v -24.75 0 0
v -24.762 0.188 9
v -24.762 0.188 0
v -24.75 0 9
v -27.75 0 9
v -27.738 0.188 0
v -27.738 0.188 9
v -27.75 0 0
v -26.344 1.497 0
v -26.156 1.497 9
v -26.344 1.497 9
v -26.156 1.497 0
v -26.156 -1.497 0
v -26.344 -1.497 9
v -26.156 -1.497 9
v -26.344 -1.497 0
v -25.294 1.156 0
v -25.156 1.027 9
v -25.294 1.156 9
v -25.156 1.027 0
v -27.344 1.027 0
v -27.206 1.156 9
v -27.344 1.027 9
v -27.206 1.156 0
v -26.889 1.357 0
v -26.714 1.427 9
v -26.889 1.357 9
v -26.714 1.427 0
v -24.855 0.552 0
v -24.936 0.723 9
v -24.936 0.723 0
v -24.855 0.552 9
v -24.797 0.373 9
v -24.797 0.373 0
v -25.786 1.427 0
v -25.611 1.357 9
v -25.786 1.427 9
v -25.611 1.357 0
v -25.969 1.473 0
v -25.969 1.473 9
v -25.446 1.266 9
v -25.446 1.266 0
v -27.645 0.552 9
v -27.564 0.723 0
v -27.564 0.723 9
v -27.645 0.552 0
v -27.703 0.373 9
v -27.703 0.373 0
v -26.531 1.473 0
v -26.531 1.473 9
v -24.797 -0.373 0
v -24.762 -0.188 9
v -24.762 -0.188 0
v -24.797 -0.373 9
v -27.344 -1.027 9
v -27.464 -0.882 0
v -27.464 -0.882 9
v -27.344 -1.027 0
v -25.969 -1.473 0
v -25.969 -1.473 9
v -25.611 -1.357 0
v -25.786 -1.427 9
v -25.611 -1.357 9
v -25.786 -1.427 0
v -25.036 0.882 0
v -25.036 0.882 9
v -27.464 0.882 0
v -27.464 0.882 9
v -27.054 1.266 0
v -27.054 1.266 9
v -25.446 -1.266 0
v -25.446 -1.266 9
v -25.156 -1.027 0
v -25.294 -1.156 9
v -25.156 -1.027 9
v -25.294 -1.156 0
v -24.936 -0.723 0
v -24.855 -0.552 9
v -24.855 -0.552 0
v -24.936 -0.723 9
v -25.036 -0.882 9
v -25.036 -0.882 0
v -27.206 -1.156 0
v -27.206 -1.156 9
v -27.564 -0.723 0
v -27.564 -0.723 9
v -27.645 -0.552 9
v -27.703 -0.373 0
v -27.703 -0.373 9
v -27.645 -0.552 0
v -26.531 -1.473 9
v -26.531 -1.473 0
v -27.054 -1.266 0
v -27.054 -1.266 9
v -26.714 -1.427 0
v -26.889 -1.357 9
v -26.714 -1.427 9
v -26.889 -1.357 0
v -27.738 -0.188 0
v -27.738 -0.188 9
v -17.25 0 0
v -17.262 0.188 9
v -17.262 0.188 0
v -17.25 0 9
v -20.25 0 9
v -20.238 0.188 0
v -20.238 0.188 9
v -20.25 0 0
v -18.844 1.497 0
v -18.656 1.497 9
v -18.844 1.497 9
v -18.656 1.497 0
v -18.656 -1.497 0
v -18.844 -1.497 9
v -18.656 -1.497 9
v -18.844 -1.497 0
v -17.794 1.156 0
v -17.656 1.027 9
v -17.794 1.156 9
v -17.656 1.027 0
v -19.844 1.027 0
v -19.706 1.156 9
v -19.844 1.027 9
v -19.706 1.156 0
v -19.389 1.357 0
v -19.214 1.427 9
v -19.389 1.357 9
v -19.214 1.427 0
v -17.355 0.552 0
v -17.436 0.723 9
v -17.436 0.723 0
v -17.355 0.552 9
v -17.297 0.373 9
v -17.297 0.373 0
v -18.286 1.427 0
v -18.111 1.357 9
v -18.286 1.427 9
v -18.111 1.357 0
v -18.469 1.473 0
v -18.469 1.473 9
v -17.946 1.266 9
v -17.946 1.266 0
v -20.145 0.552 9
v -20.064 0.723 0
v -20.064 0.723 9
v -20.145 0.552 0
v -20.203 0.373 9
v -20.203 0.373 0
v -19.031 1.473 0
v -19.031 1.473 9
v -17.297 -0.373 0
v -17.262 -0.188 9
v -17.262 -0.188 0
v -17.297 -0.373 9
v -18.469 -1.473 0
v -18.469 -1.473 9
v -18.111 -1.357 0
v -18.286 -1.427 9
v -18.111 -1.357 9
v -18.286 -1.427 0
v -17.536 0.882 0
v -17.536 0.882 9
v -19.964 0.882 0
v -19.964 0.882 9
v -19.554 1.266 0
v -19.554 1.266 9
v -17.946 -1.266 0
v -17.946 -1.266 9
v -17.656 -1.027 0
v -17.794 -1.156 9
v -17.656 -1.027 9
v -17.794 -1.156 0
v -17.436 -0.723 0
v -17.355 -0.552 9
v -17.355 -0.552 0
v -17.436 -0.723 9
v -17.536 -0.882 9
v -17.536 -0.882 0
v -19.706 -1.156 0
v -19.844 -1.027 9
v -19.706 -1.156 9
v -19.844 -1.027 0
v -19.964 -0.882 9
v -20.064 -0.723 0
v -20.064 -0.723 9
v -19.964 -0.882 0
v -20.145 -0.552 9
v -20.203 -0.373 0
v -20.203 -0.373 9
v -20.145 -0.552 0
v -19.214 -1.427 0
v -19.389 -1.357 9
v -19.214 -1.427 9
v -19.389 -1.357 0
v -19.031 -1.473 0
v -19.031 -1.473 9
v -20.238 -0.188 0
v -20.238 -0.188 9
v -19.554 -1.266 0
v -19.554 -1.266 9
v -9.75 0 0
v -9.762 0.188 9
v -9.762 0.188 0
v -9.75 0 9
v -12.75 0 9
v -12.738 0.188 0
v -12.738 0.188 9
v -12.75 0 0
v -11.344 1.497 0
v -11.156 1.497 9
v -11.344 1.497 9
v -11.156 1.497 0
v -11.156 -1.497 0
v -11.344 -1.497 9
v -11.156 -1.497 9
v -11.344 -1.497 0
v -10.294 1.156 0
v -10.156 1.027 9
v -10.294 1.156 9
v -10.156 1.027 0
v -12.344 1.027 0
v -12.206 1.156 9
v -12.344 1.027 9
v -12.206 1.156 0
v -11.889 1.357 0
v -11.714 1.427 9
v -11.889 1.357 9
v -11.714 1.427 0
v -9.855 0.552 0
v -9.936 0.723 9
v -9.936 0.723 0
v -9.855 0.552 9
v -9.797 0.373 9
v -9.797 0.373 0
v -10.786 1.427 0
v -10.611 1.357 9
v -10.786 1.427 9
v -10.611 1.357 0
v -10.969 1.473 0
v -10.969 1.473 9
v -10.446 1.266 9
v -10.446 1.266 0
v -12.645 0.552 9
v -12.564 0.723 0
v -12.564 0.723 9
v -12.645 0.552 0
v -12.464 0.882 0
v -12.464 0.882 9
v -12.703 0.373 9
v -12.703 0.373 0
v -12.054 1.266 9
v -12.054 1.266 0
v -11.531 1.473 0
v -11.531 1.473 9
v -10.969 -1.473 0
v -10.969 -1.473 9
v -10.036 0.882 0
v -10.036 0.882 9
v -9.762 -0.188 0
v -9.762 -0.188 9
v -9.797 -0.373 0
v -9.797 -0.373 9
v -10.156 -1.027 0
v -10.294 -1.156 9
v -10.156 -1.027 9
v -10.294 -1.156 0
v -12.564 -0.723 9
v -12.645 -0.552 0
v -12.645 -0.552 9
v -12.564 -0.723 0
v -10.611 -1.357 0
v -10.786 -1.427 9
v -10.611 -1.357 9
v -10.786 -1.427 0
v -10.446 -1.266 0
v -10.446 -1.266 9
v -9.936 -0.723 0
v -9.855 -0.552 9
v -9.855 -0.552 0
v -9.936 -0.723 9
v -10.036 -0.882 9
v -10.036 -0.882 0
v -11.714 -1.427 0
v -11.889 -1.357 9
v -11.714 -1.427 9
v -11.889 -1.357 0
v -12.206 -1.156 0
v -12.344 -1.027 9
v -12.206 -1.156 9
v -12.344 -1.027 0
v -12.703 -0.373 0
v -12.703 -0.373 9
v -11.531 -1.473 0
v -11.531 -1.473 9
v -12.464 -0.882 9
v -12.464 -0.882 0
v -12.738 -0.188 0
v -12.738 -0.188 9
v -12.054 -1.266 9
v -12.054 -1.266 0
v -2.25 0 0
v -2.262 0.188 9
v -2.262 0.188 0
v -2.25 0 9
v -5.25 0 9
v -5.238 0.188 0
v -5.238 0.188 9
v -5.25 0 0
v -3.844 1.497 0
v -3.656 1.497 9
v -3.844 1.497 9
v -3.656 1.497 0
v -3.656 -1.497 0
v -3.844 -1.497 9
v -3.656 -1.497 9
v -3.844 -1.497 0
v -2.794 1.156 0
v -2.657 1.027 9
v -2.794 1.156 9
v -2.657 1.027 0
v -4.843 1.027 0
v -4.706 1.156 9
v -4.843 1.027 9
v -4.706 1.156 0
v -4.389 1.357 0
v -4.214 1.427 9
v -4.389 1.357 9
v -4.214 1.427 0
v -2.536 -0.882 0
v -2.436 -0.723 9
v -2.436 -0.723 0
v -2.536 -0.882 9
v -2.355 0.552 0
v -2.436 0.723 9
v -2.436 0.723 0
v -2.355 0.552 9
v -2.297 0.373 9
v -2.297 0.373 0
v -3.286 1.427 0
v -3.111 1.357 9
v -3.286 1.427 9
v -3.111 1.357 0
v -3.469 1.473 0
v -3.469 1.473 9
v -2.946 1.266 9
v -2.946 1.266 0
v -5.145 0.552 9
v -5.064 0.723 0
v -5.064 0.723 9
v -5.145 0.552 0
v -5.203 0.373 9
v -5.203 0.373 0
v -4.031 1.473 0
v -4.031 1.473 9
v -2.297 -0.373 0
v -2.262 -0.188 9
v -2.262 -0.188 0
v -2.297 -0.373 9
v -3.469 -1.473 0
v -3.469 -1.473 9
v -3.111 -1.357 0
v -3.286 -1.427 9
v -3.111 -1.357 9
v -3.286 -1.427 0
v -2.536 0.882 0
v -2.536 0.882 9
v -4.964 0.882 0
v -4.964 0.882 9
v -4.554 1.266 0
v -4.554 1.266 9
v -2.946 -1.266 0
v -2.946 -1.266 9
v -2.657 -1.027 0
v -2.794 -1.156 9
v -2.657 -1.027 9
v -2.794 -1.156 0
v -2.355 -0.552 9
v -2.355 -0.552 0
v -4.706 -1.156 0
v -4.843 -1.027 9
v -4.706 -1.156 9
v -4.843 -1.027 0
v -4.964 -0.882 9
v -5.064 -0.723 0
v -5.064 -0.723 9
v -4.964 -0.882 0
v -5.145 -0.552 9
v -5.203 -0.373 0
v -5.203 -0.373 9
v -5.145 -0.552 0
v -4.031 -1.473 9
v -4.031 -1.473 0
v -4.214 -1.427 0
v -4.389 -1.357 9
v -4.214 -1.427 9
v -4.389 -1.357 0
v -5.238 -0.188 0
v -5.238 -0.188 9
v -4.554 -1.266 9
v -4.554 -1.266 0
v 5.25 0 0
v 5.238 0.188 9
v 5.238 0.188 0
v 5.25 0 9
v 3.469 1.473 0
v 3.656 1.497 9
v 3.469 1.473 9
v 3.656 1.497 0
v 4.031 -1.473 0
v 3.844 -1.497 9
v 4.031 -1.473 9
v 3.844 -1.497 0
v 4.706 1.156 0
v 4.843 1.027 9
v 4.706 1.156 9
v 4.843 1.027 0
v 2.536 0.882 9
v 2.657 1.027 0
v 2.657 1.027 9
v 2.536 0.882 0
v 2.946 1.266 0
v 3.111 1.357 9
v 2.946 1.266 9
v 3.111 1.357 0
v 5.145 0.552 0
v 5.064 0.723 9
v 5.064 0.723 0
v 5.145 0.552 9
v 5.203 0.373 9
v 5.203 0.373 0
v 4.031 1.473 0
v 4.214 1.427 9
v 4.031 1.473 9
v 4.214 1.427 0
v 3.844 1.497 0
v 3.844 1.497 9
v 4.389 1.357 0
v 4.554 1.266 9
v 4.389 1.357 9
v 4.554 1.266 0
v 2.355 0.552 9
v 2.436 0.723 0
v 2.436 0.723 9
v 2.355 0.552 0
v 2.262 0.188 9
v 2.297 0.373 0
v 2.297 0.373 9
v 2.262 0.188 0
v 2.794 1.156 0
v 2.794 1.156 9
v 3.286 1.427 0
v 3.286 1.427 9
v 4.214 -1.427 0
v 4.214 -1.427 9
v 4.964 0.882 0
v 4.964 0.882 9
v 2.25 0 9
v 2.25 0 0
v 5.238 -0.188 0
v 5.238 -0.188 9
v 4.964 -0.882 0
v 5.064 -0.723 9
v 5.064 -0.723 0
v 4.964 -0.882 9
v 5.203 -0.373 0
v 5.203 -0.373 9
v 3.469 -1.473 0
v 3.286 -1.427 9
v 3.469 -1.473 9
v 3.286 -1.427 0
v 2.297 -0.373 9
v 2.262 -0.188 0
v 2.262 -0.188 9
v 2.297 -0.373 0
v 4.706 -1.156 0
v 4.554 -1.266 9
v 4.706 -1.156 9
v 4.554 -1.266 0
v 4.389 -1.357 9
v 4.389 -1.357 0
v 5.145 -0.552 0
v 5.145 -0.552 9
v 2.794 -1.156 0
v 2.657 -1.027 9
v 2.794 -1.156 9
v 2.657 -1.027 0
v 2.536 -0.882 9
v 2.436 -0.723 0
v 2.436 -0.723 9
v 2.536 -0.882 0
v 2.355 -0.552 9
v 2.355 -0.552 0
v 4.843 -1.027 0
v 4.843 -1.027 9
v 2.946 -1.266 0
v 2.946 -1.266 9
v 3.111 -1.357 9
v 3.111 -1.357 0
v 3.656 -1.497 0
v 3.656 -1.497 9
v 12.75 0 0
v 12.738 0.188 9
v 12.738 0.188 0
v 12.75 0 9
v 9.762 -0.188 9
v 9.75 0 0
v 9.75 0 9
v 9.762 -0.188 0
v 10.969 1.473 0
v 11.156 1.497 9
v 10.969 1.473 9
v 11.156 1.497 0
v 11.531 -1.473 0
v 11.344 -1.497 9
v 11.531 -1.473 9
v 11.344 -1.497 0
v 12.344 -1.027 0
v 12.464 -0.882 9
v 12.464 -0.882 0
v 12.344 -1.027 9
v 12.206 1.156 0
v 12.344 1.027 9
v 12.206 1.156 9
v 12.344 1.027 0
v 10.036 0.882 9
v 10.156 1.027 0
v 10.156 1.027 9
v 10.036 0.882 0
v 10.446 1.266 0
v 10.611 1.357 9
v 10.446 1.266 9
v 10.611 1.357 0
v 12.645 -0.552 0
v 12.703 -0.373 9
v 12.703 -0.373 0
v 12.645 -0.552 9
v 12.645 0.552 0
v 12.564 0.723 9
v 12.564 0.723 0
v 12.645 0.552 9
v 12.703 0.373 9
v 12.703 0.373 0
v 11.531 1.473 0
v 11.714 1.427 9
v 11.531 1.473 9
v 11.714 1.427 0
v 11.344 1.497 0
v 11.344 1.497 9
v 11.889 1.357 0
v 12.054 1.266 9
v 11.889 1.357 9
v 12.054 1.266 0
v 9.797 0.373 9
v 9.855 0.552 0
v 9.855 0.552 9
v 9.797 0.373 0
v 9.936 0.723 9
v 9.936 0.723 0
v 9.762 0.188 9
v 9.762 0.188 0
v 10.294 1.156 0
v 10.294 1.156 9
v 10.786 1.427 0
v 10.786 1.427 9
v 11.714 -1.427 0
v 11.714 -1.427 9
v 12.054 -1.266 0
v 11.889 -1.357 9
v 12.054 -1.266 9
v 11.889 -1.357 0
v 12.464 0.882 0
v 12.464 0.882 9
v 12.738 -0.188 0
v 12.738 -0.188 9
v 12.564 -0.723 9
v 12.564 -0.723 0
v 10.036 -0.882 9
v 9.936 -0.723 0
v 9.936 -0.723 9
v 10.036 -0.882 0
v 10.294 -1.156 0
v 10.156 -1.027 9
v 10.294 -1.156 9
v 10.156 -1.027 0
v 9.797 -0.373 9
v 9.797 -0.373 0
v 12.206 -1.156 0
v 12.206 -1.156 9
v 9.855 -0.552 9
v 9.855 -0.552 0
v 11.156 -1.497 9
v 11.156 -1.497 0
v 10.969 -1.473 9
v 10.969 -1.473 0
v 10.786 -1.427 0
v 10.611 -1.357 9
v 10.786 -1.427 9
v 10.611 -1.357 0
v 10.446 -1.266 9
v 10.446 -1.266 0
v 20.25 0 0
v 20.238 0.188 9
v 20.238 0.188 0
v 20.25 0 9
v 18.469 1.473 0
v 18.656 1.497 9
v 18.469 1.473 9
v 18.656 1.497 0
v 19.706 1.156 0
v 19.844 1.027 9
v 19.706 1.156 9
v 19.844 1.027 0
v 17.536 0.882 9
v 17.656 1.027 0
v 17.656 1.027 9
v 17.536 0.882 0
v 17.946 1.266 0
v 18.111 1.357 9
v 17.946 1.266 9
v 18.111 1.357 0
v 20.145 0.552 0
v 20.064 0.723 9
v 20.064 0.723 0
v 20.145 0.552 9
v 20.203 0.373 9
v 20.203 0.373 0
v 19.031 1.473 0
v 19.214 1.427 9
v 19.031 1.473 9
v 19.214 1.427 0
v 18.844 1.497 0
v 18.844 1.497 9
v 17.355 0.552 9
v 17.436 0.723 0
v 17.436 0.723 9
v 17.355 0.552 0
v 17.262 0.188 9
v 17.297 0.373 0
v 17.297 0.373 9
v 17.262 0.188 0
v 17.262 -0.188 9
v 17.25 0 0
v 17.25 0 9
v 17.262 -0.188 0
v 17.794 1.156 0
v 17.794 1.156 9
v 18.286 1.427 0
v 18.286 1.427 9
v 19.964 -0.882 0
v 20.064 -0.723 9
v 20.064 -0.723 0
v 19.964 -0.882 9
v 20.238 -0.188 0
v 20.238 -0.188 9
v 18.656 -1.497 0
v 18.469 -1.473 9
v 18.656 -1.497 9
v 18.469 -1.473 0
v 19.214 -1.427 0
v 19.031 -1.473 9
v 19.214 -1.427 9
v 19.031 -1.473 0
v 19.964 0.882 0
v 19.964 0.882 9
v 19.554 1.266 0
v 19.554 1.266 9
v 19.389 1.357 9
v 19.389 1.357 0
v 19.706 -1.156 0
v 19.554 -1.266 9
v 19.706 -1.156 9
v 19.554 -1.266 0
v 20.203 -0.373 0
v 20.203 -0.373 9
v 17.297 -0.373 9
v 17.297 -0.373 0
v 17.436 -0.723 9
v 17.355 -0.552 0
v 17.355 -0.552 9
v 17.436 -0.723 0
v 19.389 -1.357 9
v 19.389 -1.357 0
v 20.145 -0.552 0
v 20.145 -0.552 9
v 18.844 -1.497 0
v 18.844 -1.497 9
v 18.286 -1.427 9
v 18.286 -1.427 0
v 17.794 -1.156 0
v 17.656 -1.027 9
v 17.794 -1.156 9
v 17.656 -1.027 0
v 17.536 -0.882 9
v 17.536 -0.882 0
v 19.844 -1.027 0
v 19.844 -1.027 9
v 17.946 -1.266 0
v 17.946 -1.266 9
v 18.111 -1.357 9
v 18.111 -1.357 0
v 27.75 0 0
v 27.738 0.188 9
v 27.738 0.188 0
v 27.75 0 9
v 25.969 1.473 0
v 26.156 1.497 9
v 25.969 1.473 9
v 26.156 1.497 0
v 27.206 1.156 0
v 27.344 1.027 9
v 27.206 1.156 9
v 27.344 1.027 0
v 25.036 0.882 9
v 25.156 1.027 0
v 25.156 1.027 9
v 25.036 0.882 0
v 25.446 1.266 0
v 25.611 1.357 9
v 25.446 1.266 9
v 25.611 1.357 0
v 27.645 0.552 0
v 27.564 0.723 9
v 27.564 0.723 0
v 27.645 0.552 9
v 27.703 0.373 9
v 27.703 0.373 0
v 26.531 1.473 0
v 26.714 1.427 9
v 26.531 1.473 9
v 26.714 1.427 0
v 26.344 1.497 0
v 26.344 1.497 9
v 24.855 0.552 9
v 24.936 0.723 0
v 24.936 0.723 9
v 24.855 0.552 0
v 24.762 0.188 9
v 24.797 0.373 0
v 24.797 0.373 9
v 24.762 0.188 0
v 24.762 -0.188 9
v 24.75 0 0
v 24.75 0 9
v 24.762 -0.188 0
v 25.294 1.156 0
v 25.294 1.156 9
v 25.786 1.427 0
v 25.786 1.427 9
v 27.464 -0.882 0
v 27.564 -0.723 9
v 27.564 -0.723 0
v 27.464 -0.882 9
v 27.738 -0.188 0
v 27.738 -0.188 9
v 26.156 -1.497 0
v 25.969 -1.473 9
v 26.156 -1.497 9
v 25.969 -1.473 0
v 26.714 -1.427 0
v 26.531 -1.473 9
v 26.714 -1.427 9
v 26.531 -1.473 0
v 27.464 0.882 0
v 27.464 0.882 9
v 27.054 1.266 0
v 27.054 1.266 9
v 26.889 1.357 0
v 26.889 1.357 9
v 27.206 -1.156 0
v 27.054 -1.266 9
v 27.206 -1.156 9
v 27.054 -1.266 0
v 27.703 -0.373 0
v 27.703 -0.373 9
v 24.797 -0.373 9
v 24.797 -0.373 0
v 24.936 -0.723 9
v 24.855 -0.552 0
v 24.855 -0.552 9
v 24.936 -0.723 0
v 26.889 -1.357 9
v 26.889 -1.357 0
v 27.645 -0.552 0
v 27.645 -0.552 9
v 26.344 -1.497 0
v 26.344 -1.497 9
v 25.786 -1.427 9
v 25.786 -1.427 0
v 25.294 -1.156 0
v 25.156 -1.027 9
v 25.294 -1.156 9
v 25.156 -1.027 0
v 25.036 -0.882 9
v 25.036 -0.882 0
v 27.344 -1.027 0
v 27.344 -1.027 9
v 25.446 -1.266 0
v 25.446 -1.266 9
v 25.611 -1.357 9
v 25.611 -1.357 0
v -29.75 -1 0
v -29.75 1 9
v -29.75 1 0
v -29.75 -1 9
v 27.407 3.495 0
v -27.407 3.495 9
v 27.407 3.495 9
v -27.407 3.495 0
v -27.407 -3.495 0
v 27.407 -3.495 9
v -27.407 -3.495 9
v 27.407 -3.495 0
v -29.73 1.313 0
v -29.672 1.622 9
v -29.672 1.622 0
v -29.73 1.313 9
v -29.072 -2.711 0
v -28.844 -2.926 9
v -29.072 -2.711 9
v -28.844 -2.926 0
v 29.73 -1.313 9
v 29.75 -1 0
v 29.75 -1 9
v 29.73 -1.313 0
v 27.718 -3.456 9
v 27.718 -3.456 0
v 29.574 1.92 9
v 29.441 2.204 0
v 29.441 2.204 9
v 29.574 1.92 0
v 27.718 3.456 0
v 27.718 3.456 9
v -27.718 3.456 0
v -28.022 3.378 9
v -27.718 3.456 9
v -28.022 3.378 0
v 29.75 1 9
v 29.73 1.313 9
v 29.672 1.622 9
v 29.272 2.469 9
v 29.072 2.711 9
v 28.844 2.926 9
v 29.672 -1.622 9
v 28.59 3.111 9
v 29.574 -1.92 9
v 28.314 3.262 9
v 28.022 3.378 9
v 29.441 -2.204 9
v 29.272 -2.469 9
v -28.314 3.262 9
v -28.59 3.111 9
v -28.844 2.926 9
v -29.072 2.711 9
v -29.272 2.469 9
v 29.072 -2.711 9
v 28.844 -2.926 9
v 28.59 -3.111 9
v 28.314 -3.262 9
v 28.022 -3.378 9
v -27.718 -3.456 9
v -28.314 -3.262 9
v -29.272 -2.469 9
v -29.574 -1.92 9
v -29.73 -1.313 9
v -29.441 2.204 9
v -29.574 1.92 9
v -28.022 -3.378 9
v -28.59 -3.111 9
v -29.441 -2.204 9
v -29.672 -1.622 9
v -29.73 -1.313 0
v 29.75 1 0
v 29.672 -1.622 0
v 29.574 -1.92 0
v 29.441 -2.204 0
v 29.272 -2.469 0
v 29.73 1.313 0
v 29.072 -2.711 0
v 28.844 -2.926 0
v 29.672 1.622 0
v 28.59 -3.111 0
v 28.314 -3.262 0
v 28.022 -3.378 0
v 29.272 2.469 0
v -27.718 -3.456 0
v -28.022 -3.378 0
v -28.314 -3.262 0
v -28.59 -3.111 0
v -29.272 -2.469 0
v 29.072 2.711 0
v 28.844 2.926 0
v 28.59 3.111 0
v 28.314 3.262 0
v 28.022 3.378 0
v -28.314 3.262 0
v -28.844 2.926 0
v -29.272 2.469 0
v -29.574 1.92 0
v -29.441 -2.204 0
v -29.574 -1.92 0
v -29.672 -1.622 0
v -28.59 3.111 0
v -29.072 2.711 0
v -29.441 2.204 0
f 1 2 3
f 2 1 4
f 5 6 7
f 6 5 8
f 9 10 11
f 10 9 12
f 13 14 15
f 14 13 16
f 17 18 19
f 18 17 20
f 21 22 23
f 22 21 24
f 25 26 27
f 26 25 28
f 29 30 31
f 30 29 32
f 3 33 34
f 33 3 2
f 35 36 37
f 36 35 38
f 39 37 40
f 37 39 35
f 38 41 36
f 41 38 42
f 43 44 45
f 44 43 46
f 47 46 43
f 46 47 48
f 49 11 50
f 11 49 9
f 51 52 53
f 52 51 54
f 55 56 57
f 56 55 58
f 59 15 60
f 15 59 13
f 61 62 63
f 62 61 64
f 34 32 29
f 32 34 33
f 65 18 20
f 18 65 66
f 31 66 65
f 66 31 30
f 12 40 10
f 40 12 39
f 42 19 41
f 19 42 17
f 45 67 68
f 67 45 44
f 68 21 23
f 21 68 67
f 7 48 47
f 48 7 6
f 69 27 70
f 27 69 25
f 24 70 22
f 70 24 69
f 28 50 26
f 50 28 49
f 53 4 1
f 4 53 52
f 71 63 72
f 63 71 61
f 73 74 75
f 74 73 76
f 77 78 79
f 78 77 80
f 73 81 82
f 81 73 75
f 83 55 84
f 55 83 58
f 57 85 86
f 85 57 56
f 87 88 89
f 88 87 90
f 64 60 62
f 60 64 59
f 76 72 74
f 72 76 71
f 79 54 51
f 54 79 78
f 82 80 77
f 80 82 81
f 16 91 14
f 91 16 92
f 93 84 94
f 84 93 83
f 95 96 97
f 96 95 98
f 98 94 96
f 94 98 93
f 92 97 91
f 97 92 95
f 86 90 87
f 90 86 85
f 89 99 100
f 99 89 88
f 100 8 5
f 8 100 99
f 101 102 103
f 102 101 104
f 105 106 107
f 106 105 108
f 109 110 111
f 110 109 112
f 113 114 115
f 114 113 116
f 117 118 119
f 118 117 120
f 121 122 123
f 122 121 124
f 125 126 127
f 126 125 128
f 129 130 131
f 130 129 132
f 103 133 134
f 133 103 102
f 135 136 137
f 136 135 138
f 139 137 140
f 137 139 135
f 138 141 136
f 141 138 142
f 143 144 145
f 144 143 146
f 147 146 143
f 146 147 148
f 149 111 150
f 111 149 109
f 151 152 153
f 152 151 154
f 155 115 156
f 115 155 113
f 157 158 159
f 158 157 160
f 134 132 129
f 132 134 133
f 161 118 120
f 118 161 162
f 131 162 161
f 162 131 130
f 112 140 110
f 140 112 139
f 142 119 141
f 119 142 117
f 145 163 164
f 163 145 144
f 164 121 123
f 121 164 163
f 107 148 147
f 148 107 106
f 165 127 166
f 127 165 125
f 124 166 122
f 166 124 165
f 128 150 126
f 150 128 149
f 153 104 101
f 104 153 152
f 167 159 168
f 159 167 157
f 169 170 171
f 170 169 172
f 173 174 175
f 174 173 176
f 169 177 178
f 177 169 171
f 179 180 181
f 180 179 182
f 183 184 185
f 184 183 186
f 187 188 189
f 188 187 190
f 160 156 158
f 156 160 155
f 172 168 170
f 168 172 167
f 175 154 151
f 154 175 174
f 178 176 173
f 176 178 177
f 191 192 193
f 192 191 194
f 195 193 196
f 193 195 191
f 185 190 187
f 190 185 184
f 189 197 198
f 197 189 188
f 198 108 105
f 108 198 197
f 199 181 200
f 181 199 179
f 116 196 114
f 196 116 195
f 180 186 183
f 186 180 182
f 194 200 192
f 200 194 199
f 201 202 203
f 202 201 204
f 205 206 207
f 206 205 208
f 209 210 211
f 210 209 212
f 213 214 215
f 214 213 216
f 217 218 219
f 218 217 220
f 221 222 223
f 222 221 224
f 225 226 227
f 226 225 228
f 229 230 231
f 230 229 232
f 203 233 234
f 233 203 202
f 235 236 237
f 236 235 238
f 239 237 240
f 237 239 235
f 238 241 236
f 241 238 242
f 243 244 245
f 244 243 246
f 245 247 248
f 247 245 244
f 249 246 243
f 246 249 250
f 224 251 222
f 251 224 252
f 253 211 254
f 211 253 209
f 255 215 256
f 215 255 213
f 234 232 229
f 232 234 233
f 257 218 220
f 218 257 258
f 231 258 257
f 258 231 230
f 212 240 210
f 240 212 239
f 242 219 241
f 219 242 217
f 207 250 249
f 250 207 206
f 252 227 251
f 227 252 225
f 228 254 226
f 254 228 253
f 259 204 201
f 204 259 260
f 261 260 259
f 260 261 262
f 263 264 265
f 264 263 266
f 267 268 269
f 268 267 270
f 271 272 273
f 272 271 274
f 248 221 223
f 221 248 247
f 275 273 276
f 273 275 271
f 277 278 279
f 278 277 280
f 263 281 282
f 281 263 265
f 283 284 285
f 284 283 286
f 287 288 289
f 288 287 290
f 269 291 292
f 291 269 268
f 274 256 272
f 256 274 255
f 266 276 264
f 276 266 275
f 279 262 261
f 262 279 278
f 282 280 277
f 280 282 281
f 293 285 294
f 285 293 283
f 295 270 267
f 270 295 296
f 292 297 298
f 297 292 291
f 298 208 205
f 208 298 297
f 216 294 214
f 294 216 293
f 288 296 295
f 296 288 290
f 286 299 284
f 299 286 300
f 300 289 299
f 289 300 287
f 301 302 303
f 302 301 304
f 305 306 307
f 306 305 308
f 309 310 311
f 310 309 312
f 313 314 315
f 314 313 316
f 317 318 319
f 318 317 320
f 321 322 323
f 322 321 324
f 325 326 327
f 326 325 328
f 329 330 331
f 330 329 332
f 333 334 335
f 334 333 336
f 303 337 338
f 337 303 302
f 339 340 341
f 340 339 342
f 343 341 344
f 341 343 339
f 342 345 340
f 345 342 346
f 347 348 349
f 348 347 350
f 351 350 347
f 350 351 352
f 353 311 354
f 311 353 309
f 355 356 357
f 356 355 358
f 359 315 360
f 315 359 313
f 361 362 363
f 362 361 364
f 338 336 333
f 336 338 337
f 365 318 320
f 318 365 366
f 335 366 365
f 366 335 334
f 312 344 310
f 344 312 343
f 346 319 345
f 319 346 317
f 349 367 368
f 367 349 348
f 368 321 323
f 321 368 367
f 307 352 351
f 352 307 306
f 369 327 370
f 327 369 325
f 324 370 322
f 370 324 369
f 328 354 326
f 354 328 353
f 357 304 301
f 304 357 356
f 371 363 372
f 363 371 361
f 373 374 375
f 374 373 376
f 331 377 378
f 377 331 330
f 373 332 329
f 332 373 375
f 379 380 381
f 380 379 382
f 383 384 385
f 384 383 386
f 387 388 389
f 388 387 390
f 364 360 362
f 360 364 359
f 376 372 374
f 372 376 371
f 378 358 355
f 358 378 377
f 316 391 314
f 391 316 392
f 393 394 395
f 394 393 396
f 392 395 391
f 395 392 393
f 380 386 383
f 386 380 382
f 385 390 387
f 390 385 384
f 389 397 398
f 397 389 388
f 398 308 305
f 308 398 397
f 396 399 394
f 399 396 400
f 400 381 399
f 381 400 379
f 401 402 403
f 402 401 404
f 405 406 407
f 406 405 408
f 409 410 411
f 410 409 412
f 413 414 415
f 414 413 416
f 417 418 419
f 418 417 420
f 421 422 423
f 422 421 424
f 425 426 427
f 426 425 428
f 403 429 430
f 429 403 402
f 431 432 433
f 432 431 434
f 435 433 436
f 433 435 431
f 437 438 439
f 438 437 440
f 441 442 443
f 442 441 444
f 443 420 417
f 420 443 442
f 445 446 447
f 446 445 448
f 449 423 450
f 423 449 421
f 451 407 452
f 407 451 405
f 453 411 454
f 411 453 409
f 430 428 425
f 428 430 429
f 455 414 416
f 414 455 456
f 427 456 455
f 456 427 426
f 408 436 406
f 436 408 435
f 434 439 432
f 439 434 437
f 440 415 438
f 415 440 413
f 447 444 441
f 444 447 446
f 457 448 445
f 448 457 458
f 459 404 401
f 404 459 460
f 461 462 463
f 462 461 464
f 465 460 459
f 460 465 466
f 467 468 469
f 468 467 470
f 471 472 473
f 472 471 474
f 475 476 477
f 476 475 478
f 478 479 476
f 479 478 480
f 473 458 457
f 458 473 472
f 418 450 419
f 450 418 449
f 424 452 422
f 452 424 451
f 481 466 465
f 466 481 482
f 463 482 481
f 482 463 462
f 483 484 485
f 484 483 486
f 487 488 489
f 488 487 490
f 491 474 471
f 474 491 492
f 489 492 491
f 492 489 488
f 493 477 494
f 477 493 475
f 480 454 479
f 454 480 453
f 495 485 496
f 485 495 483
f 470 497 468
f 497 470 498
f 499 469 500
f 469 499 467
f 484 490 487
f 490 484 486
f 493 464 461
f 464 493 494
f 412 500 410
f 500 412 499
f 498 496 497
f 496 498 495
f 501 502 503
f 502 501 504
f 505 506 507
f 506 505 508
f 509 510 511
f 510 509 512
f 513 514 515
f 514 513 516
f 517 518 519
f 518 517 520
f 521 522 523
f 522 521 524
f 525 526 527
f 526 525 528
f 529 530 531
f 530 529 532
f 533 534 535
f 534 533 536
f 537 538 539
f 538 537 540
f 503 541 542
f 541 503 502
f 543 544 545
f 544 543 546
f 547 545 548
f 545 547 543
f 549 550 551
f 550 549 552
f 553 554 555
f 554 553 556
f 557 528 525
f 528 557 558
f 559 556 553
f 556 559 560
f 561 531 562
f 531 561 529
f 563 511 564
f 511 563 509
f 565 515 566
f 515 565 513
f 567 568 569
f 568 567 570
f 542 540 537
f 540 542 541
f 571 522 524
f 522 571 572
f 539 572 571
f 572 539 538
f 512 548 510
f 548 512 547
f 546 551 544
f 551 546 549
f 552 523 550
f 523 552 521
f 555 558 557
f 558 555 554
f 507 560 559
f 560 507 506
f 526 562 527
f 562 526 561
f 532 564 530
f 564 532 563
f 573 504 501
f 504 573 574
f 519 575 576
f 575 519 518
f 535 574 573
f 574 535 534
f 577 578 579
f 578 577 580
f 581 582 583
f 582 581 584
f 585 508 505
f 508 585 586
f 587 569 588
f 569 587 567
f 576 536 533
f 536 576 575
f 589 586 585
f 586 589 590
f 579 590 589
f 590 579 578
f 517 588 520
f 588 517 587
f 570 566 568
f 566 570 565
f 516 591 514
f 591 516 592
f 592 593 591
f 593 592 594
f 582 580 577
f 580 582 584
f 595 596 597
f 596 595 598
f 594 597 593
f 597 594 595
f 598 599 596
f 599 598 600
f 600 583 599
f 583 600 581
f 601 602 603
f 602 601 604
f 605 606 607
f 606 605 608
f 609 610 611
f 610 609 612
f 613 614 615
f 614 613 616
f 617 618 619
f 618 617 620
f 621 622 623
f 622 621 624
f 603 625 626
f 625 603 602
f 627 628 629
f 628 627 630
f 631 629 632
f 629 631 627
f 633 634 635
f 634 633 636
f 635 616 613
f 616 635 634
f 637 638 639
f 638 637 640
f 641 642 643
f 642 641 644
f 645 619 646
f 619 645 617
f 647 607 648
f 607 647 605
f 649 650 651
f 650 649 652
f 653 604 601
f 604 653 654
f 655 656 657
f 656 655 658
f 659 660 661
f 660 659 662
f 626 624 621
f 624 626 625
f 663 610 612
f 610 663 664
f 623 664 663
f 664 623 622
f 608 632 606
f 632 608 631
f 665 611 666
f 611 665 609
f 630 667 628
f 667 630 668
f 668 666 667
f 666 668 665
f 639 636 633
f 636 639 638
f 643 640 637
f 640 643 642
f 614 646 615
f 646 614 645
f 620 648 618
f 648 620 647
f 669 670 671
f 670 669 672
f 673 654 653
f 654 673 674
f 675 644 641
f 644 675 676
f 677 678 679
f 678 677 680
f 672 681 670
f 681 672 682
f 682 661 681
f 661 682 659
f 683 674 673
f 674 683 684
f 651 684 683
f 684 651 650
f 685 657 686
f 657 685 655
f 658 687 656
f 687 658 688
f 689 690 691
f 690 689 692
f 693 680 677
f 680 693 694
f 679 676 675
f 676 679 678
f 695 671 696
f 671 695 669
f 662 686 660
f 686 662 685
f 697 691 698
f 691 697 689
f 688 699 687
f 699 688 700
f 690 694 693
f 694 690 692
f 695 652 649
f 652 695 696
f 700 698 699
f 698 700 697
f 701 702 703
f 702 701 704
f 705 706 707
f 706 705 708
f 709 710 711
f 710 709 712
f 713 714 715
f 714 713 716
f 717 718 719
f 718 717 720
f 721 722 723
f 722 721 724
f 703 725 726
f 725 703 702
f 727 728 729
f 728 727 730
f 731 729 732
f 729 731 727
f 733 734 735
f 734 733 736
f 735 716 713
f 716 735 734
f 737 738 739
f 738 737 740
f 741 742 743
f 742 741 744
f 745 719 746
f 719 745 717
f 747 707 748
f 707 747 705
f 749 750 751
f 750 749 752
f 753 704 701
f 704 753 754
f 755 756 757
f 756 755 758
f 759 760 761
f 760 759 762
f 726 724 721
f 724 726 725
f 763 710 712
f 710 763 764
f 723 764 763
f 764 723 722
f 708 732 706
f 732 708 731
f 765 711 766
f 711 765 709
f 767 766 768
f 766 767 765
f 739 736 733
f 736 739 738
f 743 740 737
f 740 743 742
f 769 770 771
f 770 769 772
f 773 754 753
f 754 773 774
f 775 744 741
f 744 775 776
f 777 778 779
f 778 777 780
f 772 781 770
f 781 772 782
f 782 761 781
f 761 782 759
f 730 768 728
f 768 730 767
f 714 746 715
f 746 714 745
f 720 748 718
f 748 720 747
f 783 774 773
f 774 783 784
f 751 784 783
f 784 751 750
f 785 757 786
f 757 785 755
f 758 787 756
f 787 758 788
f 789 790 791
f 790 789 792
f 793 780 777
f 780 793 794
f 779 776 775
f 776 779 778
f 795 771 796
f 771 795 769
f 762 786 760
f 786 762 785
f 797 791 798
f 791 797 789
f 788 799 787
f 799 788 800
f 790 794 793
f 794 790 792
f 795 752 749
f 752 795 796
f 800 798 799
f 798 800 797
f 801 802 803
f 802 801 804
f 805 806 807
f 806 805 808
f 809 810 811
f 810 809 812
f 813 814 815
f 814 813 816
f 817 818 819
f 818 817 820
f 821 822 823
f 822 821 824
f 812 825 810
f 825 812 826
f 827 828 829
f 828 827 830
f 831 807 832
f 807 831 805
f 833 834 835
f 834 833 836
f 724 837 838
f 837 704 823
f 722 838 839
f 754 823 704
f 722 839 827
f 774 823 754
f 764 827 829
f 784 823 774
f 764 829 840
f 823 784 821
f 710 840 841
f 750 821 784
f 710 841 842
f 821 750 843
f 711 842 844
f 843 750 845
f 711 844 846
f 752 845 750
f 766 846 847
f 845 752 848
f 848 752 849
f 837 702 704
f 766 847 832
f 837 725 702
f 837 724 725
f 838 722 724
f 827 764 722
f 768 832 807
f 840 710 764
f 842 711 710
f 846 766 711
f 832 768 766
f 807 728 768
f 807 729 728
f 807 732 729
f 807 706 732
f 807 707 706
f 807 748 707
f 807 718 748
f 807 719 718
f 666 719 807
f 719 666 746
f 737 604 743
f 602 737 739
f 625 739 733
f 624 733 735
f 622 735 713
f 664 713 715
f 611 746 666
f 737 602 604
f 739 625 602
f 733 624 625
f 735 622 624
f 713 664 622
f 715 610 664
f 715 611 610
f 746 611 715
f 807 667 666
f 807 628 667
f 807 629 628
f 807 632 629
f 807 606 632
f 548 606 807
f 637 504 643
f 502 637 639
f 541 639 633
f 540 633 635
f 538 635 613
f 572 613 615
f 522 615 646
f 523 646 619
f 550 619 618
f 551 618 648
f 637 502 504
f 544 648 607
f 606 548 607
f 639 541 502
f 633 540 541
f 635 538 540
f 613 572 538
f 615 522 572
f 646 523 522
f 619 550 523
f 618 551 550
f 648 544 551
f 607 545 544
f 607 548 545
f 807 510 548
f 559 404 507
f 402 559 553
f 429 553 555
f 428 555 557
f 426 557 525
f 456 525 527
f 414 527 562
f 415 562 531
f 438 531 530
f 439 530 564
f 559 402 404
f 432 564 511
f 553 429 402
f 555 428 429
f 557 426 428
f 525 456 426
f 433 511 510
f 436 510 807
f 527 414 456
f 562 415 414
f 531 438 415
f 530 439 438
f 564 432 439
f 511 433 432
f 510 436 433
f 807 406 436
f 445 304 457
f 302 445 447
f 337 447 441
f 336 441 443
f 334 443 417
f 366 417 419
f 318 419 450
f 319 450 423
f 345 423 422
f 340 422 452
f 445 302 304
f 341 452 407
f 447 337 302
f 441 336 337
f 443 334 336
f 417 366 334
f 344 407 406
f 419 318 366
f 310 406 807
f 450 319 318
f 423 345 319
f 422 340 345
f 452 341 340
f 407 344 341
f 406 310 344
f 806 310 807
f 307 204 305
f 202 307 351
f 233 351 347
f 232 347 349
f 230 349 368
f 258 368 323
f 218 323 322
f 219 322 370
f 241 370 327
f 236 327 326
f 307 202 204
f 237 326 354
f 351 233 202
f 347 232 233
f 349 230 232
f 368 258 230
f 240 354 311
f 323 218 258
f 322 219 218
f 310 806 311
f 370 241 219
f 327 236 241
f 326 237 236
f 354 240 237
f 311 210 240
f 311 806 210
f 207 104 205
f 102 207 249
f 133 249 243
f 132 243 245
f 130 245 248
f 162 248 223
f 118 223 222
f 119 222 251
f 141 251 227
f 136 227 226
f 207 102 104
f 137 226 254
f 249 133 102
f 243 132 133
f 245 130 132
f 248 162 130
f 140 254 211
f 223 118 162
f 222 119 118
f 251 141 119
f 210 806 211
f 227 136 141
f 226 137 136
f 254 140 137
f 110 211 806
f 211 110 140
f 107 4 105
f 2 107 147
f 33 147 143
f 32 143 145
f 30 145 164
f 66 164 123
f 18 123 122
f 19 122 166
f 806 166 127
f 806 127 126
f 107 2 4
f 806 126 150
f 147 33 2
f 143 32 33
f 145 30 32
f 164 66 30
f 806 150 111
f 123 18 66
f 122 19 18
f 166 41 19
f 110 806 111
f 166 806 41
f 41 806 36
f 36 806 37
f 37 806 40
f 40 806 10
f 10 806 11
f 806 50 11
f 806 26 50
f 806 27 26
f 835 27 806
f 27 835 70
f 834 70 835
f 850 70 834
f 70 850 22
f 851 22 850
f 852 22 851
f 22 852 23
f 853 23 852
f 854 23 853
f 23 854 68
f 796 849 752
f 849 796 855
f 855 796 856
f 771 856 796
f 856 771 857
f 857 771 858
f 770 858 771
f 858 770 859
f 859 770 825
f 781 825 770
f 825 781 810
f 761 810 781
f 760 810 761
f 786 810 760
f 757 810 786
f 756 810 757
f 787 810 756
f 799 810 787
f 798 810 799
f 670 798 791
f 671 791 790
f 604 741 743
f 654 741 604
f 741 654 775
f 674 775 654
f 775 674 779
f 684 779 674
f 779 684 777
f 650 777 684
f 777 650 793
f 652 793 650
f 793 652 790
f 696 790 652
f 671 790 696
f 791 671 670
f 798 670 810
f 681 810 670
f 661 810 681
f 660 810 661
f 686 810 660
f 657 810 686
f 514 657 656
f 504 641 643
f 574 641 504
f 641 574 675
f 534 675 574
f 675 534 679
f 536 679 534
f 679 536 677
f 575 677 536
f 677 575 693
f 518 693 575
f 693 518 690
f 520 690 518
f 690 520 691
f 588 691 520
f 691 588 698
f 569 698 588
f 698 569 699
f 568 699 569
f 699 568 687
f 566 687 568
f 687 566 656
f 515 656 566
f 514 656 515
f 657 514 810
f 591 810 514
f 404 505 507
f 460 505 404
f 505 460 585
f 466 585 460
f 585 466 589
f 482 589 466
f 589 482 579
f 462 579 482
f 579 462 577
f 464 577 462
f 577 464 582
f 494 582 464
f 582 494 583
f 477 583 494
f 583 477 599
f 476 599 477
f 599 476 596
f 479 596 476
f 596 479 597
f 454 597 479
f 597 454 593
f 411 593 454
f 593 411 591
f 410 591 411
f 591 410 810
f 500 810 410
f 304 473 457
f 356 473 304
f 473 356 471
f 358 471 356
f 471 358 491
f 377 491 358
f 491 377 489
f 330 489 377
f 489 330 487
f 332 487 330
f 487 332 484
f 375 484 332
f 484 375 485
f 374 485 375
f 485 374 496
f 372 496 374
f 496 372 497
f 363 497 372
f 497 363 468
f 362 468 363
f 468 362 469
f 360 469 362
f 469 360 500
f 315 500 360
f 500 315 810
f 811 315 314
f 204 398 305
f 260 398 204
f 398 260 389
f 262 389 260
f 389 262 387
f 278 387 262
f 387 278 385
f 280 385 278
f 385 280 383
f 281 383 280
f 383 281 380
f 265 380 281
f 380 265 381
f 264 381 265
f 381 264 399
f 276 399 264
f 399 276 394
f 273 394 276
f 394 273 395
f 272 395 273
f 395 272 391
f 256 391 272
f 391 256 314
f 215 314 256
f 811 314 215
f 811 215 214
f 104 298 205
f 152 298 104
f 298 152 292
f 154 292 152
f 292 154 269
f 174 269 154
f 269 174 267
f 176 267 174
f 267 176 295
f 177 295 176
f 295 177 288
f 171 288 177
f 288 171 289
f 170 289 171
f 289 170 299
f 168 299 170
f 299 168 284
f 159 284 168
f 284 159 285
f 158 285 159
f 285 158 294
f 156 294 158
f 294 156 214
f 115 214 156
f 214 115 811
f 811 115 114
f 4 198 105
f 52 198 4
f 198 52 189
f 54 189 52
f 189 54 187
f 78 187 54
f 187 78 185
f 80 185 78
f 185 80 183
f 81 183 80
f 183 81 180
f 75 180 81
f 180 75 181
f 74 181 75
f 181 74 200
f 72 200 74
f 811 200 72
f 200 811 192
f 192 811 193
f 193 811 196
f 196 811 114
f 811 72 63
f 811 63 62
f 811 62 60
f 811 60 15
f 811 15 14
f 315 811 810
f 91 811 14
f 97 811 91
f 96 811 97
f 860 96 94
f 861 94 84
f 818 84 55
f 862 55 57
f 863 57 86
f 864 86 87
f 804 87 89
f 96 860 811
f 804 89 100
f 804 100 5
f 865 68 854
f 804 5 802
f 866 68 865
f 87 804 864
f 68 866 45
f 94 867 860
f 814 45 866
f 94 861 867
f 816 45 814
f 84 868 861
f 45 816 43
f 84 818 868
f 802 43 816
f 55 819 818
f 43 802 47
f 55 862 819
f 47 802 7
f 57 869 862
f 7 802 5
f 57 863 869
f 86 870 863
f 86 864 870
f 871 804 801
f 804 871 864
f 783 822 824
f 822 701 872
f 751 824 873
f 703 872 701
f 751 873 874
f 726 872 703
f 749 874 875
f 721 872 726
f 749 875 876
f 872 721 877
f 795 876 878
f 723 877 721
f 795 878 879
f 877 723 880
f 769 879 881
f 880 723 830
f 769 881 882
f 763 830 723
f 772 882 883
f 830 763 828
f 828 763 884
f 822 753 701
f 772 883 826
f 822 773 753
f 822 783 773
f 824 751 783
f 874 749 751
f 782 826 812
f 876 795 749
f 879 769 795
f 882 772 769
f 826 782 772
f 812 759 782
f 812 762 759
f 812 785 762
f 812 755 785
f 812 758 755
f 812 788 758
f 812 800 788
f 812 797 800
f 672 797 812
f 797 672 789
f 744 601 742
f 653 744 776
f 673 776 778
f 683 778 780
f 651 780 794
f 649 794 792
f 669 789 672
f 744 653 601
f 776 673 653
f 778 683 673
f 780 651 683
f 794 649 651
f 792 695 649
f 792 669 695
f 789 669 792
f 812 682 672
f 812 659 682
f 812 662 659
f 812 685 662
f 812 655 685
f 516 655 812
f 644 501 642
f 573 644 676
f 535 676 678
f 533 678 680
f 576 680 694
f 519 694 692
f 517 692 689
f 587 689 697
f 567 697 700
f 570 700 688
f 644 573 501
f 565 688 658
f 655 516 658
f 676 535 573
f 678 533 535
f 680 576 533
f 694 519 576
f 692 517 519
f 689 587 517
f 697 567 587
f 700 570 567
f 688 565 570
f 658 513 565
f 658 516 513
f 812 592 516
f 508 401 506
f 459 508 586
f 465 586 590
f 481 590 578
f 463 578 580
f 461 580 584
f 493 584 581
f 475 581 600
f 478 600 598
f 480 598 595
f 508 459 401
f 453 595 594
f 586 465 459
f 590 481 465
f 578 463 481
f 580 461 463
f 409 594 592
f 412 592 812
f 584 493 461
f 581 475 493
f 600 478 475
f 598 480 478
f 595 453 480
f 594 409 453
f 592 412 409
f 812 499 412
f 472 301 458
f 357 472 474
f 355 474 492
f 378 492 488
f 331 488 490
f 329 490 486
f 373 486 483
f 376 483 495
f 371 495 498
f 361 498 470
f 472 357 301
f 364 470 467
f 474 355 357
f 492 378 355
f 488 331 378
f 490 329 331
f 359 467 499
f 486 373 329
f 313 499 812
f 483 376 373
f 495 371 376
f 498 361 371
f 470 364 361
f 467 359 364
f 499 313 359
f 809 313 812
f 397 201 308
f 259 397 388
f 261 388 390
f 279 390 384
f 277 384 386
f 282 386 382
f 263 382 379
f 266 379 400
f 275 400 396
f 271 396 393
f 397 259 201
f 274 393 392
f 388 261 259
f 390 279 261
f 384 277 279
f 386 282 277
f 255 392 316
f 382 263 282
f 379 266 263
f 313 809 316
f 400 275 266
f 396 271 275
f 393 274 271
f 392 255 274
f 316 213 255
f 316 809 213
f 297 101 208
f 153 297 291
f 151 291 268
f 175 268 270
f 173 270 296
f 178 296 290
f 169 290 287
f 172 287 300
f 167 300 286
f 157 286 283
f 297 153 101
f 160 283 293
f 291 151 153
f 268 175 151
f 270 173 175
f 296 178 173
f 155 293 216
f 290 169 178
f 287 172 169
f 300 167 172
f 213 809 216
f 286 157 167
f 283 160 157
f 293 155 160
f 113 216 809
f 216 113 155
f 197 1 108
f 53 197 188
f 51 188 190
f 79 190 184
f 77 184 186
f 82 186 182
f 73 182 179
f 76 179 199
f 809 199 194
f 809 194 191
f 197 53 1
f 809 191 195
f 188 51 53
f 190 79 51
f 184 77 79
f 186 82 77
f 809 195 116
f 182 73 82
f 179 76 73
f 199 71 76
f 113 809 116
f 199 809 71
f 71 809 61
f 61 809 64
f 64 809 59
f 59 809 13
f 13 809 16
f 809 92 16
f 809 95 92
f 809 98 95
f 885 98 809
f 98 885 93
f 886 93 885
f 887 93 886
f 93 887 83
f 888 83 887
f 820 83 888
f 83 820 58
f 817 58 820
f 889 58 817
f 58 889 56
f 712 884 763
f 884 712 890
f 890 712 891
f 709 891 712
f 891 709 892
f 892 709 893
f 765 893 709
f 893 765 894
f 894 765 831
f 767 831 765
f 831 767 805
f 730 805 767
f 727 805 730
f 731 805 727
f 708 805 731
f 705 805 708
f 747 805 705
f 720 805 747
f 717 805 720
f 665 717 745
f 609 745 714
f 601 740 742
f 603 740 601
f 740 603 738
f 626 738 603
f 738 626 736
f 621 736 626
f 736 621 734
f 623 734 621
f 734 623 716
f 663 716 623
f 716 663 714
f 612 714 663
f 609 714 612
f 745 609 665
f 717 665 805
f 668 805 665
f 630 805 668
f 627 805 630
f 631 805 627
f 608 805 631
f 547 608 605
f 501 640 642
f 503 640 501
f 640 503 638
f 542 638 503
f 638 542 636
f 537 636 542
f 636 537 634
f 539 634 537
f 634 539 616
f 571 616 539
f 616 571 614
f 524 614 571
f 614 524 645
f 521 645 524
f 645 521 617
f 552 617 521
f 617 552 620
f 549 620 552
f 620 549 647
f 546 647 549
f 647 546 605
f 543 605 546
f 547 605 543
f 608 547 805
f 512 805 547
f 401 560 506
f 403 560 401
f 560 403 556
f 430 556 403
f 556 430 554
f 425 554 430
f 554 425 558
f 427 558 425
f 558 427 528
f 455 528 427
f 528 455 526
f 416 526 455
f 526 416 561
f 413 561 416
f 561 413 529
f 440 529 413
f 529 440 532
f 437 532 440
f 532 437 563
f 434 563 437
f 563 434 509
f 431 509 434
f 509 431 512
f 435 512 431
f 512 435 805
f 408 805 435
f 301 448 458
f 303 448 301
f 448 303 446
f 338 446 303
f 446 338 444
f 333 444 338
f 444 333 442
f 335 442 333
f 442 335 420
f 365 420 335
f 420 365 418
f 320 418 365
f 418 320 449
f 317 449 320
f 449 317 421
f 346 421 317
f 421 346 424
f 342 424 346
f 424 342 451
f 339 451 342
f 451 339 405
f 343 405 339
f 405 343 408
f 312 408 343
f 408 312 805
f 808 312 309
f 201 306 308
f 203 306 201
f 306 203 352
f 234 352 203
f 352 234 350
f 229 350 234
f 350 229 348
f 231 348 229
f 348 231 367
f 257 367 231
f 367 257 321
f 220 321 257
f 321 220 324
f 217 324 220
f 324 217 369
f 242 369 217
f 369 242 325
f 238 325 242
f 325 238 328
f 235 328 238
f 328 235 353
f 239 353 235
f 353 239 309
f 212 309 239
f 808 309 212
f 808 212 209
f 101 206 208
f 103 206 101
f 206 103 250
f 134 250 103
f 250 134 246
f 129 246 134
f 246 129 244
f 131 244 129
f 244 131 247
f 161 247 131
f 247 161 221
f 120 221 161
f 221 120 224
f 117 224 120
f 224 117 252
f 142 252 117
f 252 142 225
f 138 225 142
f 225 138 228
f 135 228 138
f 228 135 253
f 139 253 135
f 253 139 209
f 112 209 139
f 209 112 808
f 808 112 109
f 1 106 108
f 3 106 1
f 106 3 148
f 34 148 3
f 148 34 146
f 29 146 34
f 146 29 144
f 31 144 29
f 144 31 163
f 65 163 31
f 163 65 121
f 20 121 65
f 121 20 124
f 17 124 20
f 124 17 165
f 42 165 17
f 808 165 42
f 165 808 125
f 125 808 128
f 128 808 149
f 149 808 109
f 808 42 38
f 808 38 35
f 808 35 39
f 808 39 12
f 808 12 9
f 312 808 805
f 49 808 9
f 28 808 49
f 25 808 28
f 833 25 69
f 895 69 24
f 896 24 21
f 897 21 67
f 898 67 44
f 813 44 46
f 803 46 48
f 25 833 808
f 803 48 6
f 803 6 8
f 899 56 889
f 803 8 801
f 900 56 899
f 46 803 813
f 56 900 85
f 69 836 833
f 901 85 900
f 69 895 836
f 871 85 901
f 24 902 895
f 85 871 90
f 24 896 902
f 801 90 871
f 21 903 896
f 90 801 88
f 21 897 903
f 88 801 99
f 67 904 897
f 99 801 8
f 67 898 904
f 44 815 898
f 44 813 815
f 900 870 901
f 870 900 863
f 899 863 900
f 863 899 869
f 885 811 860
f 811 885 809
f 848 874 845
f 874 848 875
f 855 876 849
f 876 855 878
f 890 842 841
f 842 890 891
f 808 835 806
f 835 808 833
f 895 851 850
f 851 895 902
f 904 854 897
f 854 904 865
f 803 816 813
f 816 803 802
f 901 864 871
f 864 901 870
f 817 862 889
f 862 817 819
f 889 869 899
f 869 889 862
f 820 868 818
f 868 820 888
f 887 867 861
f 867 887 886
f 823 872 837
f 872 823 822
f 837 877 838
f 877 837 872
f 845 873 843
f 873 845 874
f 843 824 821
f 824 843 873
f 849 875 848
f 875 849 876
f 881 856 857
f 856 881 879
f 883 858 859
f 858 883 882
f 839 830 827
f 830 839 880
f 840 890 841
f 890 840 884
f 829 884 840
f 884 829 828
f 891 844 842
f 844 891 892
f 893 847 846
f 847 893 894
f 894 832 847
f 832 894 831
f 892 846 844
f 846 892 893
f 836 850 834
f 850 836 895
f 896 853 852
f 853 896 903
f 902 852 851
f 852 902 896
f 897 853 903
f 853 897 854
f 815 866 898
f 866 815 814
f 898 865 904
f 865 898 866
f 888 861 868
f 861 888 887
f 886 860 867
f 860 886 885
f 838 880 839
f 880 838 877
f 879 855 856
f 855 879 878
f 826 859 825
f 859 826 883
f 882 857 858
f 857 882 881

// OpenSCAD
$fn = 50;


difference() {
	union() {
		translate(v = [0, 0, 0]) {
			rotate(a = [0, 0, 0]) {
				hull() {
					translate(v = [-27.2500000000, 1.0000000000, 0]) {
						rotate(a = [0, 0, 0]) {
							translate(v = [0, 0, 0]) {
								rotate(a = [0, 0, 0]) {
									cylinder(h = 9, r = 2.5000000000);
								}
							}
						}
					}
					translate(v = [27.2500000000, 1.0000000000, 0]) {
						rotate(a = [0, 0, 0]) {
							translate(v = [0, 0, 0]) {
								rotate(a = [0, 0, 0]) {
									cylinder(h = 9, r = 2.5000000000);
								}
							}
						}
					}
					translate(v = [-27.2500000000, -1.0000000000, 0]) {
						rotate(a = [0, 0, 0]) {
							translate(v = [0, 0, 0]) {
								rotate(a = [0, 0, 0]) {
									cylinder(h = 9, r = 2.5000000000);
								}
							}
						}
					}
					translate(v = [27.2500000000, -1.0000000000, 0]) {
						rotate(a = [0, 0, 0]) {
							translate(v = [0, 0, 0]) {
								rotate(a = [0, 0, 0]) {
									cylinder(h = 9, r = 2.5000000000);
								}
							}
						}
					}
				}
			}
		}
	}
	union() {
		translate(v = [-26.2500000000, 0.0000000000, 0]) {
			rotate(a = [0, 0, 0]) {
				translate(v = [0, 0, -50]) {
					rotate(a = [0, 0, 0]) {
						cylinder(h = 100, r = 1.5000000000);
					}
				}
			}
		}
		translate(v = [-18.7500000000, 0.0000000000, 0]) {
			rotate(a = [0, 0, 0]) {
				translate(v = [0, 0, -50]) {
					rotate(a = [0, 0, 0]) {
						cylinder(h = 100, r = 1.5000000000);
					}
				}
			}
		}
		translate(v = [-11.2500000000, 0.0000000000, 0]) {
			rotate(a = [0, 0, 0]) {
				translate(v = [0, 0, -50]) {
					rotate(a = [0, 0, 0]) {
						cylinder(h = 100, r = 1.5000000000);
					}
				}
			}
		}
		translate(v = [-3.7500000000, 0.0000000000, 0]) {
			rotate(a = [0, 0, 0]) {
				translate(v = [0, 0, -50]) {
					rotate(a = [0, 0, 0]) {
						cylinder(h = 100, r = 1.5000000000);
					}
				}
			}
		}
		translate(v = [3.7500000000, 0.0000000000, 0]) {
			rotate(a = [0, 0, 0]) {
				translate(v = [0, 0, -50]) {
					rotate(a = [0, 0, 0]) {
						cylinder(h = 100, r = 1.5000000000);
					}
				}
			}
		}
		translate(v = [11.2500000000, 0.0000000000, 0]) {
			rotate(a = [0, 0, 0]) {
				translate(v = [0, 0, -50]) {
					rotate(a = [0, 0, 0]) {
						cylinder(h = 100, r = 1.5000000000);
					}
				}
			}
		}
		translate(v = [18.7500000000, 0.0000000000, 0]) {
			rotate(a = [0, 0, 0]) {
				translate(v = [0, 0, -50]) {
					rotate(a = [0, 0, 0]) {
						cylinder(h = 100, r = 1.5000000000);
					}
				}
			}
		}
		translate(v = [26.2500000000, 0.0000000000, 0]) {
			rotate(a = [0, 0, 0]) {
				translate(v = [0, 0, -50]) {
					rotate(a = [0, 0, 0]) {
						cylinder(h = 100, r = 1.5000000000);
					}
				}
			}
		}
	}
}
